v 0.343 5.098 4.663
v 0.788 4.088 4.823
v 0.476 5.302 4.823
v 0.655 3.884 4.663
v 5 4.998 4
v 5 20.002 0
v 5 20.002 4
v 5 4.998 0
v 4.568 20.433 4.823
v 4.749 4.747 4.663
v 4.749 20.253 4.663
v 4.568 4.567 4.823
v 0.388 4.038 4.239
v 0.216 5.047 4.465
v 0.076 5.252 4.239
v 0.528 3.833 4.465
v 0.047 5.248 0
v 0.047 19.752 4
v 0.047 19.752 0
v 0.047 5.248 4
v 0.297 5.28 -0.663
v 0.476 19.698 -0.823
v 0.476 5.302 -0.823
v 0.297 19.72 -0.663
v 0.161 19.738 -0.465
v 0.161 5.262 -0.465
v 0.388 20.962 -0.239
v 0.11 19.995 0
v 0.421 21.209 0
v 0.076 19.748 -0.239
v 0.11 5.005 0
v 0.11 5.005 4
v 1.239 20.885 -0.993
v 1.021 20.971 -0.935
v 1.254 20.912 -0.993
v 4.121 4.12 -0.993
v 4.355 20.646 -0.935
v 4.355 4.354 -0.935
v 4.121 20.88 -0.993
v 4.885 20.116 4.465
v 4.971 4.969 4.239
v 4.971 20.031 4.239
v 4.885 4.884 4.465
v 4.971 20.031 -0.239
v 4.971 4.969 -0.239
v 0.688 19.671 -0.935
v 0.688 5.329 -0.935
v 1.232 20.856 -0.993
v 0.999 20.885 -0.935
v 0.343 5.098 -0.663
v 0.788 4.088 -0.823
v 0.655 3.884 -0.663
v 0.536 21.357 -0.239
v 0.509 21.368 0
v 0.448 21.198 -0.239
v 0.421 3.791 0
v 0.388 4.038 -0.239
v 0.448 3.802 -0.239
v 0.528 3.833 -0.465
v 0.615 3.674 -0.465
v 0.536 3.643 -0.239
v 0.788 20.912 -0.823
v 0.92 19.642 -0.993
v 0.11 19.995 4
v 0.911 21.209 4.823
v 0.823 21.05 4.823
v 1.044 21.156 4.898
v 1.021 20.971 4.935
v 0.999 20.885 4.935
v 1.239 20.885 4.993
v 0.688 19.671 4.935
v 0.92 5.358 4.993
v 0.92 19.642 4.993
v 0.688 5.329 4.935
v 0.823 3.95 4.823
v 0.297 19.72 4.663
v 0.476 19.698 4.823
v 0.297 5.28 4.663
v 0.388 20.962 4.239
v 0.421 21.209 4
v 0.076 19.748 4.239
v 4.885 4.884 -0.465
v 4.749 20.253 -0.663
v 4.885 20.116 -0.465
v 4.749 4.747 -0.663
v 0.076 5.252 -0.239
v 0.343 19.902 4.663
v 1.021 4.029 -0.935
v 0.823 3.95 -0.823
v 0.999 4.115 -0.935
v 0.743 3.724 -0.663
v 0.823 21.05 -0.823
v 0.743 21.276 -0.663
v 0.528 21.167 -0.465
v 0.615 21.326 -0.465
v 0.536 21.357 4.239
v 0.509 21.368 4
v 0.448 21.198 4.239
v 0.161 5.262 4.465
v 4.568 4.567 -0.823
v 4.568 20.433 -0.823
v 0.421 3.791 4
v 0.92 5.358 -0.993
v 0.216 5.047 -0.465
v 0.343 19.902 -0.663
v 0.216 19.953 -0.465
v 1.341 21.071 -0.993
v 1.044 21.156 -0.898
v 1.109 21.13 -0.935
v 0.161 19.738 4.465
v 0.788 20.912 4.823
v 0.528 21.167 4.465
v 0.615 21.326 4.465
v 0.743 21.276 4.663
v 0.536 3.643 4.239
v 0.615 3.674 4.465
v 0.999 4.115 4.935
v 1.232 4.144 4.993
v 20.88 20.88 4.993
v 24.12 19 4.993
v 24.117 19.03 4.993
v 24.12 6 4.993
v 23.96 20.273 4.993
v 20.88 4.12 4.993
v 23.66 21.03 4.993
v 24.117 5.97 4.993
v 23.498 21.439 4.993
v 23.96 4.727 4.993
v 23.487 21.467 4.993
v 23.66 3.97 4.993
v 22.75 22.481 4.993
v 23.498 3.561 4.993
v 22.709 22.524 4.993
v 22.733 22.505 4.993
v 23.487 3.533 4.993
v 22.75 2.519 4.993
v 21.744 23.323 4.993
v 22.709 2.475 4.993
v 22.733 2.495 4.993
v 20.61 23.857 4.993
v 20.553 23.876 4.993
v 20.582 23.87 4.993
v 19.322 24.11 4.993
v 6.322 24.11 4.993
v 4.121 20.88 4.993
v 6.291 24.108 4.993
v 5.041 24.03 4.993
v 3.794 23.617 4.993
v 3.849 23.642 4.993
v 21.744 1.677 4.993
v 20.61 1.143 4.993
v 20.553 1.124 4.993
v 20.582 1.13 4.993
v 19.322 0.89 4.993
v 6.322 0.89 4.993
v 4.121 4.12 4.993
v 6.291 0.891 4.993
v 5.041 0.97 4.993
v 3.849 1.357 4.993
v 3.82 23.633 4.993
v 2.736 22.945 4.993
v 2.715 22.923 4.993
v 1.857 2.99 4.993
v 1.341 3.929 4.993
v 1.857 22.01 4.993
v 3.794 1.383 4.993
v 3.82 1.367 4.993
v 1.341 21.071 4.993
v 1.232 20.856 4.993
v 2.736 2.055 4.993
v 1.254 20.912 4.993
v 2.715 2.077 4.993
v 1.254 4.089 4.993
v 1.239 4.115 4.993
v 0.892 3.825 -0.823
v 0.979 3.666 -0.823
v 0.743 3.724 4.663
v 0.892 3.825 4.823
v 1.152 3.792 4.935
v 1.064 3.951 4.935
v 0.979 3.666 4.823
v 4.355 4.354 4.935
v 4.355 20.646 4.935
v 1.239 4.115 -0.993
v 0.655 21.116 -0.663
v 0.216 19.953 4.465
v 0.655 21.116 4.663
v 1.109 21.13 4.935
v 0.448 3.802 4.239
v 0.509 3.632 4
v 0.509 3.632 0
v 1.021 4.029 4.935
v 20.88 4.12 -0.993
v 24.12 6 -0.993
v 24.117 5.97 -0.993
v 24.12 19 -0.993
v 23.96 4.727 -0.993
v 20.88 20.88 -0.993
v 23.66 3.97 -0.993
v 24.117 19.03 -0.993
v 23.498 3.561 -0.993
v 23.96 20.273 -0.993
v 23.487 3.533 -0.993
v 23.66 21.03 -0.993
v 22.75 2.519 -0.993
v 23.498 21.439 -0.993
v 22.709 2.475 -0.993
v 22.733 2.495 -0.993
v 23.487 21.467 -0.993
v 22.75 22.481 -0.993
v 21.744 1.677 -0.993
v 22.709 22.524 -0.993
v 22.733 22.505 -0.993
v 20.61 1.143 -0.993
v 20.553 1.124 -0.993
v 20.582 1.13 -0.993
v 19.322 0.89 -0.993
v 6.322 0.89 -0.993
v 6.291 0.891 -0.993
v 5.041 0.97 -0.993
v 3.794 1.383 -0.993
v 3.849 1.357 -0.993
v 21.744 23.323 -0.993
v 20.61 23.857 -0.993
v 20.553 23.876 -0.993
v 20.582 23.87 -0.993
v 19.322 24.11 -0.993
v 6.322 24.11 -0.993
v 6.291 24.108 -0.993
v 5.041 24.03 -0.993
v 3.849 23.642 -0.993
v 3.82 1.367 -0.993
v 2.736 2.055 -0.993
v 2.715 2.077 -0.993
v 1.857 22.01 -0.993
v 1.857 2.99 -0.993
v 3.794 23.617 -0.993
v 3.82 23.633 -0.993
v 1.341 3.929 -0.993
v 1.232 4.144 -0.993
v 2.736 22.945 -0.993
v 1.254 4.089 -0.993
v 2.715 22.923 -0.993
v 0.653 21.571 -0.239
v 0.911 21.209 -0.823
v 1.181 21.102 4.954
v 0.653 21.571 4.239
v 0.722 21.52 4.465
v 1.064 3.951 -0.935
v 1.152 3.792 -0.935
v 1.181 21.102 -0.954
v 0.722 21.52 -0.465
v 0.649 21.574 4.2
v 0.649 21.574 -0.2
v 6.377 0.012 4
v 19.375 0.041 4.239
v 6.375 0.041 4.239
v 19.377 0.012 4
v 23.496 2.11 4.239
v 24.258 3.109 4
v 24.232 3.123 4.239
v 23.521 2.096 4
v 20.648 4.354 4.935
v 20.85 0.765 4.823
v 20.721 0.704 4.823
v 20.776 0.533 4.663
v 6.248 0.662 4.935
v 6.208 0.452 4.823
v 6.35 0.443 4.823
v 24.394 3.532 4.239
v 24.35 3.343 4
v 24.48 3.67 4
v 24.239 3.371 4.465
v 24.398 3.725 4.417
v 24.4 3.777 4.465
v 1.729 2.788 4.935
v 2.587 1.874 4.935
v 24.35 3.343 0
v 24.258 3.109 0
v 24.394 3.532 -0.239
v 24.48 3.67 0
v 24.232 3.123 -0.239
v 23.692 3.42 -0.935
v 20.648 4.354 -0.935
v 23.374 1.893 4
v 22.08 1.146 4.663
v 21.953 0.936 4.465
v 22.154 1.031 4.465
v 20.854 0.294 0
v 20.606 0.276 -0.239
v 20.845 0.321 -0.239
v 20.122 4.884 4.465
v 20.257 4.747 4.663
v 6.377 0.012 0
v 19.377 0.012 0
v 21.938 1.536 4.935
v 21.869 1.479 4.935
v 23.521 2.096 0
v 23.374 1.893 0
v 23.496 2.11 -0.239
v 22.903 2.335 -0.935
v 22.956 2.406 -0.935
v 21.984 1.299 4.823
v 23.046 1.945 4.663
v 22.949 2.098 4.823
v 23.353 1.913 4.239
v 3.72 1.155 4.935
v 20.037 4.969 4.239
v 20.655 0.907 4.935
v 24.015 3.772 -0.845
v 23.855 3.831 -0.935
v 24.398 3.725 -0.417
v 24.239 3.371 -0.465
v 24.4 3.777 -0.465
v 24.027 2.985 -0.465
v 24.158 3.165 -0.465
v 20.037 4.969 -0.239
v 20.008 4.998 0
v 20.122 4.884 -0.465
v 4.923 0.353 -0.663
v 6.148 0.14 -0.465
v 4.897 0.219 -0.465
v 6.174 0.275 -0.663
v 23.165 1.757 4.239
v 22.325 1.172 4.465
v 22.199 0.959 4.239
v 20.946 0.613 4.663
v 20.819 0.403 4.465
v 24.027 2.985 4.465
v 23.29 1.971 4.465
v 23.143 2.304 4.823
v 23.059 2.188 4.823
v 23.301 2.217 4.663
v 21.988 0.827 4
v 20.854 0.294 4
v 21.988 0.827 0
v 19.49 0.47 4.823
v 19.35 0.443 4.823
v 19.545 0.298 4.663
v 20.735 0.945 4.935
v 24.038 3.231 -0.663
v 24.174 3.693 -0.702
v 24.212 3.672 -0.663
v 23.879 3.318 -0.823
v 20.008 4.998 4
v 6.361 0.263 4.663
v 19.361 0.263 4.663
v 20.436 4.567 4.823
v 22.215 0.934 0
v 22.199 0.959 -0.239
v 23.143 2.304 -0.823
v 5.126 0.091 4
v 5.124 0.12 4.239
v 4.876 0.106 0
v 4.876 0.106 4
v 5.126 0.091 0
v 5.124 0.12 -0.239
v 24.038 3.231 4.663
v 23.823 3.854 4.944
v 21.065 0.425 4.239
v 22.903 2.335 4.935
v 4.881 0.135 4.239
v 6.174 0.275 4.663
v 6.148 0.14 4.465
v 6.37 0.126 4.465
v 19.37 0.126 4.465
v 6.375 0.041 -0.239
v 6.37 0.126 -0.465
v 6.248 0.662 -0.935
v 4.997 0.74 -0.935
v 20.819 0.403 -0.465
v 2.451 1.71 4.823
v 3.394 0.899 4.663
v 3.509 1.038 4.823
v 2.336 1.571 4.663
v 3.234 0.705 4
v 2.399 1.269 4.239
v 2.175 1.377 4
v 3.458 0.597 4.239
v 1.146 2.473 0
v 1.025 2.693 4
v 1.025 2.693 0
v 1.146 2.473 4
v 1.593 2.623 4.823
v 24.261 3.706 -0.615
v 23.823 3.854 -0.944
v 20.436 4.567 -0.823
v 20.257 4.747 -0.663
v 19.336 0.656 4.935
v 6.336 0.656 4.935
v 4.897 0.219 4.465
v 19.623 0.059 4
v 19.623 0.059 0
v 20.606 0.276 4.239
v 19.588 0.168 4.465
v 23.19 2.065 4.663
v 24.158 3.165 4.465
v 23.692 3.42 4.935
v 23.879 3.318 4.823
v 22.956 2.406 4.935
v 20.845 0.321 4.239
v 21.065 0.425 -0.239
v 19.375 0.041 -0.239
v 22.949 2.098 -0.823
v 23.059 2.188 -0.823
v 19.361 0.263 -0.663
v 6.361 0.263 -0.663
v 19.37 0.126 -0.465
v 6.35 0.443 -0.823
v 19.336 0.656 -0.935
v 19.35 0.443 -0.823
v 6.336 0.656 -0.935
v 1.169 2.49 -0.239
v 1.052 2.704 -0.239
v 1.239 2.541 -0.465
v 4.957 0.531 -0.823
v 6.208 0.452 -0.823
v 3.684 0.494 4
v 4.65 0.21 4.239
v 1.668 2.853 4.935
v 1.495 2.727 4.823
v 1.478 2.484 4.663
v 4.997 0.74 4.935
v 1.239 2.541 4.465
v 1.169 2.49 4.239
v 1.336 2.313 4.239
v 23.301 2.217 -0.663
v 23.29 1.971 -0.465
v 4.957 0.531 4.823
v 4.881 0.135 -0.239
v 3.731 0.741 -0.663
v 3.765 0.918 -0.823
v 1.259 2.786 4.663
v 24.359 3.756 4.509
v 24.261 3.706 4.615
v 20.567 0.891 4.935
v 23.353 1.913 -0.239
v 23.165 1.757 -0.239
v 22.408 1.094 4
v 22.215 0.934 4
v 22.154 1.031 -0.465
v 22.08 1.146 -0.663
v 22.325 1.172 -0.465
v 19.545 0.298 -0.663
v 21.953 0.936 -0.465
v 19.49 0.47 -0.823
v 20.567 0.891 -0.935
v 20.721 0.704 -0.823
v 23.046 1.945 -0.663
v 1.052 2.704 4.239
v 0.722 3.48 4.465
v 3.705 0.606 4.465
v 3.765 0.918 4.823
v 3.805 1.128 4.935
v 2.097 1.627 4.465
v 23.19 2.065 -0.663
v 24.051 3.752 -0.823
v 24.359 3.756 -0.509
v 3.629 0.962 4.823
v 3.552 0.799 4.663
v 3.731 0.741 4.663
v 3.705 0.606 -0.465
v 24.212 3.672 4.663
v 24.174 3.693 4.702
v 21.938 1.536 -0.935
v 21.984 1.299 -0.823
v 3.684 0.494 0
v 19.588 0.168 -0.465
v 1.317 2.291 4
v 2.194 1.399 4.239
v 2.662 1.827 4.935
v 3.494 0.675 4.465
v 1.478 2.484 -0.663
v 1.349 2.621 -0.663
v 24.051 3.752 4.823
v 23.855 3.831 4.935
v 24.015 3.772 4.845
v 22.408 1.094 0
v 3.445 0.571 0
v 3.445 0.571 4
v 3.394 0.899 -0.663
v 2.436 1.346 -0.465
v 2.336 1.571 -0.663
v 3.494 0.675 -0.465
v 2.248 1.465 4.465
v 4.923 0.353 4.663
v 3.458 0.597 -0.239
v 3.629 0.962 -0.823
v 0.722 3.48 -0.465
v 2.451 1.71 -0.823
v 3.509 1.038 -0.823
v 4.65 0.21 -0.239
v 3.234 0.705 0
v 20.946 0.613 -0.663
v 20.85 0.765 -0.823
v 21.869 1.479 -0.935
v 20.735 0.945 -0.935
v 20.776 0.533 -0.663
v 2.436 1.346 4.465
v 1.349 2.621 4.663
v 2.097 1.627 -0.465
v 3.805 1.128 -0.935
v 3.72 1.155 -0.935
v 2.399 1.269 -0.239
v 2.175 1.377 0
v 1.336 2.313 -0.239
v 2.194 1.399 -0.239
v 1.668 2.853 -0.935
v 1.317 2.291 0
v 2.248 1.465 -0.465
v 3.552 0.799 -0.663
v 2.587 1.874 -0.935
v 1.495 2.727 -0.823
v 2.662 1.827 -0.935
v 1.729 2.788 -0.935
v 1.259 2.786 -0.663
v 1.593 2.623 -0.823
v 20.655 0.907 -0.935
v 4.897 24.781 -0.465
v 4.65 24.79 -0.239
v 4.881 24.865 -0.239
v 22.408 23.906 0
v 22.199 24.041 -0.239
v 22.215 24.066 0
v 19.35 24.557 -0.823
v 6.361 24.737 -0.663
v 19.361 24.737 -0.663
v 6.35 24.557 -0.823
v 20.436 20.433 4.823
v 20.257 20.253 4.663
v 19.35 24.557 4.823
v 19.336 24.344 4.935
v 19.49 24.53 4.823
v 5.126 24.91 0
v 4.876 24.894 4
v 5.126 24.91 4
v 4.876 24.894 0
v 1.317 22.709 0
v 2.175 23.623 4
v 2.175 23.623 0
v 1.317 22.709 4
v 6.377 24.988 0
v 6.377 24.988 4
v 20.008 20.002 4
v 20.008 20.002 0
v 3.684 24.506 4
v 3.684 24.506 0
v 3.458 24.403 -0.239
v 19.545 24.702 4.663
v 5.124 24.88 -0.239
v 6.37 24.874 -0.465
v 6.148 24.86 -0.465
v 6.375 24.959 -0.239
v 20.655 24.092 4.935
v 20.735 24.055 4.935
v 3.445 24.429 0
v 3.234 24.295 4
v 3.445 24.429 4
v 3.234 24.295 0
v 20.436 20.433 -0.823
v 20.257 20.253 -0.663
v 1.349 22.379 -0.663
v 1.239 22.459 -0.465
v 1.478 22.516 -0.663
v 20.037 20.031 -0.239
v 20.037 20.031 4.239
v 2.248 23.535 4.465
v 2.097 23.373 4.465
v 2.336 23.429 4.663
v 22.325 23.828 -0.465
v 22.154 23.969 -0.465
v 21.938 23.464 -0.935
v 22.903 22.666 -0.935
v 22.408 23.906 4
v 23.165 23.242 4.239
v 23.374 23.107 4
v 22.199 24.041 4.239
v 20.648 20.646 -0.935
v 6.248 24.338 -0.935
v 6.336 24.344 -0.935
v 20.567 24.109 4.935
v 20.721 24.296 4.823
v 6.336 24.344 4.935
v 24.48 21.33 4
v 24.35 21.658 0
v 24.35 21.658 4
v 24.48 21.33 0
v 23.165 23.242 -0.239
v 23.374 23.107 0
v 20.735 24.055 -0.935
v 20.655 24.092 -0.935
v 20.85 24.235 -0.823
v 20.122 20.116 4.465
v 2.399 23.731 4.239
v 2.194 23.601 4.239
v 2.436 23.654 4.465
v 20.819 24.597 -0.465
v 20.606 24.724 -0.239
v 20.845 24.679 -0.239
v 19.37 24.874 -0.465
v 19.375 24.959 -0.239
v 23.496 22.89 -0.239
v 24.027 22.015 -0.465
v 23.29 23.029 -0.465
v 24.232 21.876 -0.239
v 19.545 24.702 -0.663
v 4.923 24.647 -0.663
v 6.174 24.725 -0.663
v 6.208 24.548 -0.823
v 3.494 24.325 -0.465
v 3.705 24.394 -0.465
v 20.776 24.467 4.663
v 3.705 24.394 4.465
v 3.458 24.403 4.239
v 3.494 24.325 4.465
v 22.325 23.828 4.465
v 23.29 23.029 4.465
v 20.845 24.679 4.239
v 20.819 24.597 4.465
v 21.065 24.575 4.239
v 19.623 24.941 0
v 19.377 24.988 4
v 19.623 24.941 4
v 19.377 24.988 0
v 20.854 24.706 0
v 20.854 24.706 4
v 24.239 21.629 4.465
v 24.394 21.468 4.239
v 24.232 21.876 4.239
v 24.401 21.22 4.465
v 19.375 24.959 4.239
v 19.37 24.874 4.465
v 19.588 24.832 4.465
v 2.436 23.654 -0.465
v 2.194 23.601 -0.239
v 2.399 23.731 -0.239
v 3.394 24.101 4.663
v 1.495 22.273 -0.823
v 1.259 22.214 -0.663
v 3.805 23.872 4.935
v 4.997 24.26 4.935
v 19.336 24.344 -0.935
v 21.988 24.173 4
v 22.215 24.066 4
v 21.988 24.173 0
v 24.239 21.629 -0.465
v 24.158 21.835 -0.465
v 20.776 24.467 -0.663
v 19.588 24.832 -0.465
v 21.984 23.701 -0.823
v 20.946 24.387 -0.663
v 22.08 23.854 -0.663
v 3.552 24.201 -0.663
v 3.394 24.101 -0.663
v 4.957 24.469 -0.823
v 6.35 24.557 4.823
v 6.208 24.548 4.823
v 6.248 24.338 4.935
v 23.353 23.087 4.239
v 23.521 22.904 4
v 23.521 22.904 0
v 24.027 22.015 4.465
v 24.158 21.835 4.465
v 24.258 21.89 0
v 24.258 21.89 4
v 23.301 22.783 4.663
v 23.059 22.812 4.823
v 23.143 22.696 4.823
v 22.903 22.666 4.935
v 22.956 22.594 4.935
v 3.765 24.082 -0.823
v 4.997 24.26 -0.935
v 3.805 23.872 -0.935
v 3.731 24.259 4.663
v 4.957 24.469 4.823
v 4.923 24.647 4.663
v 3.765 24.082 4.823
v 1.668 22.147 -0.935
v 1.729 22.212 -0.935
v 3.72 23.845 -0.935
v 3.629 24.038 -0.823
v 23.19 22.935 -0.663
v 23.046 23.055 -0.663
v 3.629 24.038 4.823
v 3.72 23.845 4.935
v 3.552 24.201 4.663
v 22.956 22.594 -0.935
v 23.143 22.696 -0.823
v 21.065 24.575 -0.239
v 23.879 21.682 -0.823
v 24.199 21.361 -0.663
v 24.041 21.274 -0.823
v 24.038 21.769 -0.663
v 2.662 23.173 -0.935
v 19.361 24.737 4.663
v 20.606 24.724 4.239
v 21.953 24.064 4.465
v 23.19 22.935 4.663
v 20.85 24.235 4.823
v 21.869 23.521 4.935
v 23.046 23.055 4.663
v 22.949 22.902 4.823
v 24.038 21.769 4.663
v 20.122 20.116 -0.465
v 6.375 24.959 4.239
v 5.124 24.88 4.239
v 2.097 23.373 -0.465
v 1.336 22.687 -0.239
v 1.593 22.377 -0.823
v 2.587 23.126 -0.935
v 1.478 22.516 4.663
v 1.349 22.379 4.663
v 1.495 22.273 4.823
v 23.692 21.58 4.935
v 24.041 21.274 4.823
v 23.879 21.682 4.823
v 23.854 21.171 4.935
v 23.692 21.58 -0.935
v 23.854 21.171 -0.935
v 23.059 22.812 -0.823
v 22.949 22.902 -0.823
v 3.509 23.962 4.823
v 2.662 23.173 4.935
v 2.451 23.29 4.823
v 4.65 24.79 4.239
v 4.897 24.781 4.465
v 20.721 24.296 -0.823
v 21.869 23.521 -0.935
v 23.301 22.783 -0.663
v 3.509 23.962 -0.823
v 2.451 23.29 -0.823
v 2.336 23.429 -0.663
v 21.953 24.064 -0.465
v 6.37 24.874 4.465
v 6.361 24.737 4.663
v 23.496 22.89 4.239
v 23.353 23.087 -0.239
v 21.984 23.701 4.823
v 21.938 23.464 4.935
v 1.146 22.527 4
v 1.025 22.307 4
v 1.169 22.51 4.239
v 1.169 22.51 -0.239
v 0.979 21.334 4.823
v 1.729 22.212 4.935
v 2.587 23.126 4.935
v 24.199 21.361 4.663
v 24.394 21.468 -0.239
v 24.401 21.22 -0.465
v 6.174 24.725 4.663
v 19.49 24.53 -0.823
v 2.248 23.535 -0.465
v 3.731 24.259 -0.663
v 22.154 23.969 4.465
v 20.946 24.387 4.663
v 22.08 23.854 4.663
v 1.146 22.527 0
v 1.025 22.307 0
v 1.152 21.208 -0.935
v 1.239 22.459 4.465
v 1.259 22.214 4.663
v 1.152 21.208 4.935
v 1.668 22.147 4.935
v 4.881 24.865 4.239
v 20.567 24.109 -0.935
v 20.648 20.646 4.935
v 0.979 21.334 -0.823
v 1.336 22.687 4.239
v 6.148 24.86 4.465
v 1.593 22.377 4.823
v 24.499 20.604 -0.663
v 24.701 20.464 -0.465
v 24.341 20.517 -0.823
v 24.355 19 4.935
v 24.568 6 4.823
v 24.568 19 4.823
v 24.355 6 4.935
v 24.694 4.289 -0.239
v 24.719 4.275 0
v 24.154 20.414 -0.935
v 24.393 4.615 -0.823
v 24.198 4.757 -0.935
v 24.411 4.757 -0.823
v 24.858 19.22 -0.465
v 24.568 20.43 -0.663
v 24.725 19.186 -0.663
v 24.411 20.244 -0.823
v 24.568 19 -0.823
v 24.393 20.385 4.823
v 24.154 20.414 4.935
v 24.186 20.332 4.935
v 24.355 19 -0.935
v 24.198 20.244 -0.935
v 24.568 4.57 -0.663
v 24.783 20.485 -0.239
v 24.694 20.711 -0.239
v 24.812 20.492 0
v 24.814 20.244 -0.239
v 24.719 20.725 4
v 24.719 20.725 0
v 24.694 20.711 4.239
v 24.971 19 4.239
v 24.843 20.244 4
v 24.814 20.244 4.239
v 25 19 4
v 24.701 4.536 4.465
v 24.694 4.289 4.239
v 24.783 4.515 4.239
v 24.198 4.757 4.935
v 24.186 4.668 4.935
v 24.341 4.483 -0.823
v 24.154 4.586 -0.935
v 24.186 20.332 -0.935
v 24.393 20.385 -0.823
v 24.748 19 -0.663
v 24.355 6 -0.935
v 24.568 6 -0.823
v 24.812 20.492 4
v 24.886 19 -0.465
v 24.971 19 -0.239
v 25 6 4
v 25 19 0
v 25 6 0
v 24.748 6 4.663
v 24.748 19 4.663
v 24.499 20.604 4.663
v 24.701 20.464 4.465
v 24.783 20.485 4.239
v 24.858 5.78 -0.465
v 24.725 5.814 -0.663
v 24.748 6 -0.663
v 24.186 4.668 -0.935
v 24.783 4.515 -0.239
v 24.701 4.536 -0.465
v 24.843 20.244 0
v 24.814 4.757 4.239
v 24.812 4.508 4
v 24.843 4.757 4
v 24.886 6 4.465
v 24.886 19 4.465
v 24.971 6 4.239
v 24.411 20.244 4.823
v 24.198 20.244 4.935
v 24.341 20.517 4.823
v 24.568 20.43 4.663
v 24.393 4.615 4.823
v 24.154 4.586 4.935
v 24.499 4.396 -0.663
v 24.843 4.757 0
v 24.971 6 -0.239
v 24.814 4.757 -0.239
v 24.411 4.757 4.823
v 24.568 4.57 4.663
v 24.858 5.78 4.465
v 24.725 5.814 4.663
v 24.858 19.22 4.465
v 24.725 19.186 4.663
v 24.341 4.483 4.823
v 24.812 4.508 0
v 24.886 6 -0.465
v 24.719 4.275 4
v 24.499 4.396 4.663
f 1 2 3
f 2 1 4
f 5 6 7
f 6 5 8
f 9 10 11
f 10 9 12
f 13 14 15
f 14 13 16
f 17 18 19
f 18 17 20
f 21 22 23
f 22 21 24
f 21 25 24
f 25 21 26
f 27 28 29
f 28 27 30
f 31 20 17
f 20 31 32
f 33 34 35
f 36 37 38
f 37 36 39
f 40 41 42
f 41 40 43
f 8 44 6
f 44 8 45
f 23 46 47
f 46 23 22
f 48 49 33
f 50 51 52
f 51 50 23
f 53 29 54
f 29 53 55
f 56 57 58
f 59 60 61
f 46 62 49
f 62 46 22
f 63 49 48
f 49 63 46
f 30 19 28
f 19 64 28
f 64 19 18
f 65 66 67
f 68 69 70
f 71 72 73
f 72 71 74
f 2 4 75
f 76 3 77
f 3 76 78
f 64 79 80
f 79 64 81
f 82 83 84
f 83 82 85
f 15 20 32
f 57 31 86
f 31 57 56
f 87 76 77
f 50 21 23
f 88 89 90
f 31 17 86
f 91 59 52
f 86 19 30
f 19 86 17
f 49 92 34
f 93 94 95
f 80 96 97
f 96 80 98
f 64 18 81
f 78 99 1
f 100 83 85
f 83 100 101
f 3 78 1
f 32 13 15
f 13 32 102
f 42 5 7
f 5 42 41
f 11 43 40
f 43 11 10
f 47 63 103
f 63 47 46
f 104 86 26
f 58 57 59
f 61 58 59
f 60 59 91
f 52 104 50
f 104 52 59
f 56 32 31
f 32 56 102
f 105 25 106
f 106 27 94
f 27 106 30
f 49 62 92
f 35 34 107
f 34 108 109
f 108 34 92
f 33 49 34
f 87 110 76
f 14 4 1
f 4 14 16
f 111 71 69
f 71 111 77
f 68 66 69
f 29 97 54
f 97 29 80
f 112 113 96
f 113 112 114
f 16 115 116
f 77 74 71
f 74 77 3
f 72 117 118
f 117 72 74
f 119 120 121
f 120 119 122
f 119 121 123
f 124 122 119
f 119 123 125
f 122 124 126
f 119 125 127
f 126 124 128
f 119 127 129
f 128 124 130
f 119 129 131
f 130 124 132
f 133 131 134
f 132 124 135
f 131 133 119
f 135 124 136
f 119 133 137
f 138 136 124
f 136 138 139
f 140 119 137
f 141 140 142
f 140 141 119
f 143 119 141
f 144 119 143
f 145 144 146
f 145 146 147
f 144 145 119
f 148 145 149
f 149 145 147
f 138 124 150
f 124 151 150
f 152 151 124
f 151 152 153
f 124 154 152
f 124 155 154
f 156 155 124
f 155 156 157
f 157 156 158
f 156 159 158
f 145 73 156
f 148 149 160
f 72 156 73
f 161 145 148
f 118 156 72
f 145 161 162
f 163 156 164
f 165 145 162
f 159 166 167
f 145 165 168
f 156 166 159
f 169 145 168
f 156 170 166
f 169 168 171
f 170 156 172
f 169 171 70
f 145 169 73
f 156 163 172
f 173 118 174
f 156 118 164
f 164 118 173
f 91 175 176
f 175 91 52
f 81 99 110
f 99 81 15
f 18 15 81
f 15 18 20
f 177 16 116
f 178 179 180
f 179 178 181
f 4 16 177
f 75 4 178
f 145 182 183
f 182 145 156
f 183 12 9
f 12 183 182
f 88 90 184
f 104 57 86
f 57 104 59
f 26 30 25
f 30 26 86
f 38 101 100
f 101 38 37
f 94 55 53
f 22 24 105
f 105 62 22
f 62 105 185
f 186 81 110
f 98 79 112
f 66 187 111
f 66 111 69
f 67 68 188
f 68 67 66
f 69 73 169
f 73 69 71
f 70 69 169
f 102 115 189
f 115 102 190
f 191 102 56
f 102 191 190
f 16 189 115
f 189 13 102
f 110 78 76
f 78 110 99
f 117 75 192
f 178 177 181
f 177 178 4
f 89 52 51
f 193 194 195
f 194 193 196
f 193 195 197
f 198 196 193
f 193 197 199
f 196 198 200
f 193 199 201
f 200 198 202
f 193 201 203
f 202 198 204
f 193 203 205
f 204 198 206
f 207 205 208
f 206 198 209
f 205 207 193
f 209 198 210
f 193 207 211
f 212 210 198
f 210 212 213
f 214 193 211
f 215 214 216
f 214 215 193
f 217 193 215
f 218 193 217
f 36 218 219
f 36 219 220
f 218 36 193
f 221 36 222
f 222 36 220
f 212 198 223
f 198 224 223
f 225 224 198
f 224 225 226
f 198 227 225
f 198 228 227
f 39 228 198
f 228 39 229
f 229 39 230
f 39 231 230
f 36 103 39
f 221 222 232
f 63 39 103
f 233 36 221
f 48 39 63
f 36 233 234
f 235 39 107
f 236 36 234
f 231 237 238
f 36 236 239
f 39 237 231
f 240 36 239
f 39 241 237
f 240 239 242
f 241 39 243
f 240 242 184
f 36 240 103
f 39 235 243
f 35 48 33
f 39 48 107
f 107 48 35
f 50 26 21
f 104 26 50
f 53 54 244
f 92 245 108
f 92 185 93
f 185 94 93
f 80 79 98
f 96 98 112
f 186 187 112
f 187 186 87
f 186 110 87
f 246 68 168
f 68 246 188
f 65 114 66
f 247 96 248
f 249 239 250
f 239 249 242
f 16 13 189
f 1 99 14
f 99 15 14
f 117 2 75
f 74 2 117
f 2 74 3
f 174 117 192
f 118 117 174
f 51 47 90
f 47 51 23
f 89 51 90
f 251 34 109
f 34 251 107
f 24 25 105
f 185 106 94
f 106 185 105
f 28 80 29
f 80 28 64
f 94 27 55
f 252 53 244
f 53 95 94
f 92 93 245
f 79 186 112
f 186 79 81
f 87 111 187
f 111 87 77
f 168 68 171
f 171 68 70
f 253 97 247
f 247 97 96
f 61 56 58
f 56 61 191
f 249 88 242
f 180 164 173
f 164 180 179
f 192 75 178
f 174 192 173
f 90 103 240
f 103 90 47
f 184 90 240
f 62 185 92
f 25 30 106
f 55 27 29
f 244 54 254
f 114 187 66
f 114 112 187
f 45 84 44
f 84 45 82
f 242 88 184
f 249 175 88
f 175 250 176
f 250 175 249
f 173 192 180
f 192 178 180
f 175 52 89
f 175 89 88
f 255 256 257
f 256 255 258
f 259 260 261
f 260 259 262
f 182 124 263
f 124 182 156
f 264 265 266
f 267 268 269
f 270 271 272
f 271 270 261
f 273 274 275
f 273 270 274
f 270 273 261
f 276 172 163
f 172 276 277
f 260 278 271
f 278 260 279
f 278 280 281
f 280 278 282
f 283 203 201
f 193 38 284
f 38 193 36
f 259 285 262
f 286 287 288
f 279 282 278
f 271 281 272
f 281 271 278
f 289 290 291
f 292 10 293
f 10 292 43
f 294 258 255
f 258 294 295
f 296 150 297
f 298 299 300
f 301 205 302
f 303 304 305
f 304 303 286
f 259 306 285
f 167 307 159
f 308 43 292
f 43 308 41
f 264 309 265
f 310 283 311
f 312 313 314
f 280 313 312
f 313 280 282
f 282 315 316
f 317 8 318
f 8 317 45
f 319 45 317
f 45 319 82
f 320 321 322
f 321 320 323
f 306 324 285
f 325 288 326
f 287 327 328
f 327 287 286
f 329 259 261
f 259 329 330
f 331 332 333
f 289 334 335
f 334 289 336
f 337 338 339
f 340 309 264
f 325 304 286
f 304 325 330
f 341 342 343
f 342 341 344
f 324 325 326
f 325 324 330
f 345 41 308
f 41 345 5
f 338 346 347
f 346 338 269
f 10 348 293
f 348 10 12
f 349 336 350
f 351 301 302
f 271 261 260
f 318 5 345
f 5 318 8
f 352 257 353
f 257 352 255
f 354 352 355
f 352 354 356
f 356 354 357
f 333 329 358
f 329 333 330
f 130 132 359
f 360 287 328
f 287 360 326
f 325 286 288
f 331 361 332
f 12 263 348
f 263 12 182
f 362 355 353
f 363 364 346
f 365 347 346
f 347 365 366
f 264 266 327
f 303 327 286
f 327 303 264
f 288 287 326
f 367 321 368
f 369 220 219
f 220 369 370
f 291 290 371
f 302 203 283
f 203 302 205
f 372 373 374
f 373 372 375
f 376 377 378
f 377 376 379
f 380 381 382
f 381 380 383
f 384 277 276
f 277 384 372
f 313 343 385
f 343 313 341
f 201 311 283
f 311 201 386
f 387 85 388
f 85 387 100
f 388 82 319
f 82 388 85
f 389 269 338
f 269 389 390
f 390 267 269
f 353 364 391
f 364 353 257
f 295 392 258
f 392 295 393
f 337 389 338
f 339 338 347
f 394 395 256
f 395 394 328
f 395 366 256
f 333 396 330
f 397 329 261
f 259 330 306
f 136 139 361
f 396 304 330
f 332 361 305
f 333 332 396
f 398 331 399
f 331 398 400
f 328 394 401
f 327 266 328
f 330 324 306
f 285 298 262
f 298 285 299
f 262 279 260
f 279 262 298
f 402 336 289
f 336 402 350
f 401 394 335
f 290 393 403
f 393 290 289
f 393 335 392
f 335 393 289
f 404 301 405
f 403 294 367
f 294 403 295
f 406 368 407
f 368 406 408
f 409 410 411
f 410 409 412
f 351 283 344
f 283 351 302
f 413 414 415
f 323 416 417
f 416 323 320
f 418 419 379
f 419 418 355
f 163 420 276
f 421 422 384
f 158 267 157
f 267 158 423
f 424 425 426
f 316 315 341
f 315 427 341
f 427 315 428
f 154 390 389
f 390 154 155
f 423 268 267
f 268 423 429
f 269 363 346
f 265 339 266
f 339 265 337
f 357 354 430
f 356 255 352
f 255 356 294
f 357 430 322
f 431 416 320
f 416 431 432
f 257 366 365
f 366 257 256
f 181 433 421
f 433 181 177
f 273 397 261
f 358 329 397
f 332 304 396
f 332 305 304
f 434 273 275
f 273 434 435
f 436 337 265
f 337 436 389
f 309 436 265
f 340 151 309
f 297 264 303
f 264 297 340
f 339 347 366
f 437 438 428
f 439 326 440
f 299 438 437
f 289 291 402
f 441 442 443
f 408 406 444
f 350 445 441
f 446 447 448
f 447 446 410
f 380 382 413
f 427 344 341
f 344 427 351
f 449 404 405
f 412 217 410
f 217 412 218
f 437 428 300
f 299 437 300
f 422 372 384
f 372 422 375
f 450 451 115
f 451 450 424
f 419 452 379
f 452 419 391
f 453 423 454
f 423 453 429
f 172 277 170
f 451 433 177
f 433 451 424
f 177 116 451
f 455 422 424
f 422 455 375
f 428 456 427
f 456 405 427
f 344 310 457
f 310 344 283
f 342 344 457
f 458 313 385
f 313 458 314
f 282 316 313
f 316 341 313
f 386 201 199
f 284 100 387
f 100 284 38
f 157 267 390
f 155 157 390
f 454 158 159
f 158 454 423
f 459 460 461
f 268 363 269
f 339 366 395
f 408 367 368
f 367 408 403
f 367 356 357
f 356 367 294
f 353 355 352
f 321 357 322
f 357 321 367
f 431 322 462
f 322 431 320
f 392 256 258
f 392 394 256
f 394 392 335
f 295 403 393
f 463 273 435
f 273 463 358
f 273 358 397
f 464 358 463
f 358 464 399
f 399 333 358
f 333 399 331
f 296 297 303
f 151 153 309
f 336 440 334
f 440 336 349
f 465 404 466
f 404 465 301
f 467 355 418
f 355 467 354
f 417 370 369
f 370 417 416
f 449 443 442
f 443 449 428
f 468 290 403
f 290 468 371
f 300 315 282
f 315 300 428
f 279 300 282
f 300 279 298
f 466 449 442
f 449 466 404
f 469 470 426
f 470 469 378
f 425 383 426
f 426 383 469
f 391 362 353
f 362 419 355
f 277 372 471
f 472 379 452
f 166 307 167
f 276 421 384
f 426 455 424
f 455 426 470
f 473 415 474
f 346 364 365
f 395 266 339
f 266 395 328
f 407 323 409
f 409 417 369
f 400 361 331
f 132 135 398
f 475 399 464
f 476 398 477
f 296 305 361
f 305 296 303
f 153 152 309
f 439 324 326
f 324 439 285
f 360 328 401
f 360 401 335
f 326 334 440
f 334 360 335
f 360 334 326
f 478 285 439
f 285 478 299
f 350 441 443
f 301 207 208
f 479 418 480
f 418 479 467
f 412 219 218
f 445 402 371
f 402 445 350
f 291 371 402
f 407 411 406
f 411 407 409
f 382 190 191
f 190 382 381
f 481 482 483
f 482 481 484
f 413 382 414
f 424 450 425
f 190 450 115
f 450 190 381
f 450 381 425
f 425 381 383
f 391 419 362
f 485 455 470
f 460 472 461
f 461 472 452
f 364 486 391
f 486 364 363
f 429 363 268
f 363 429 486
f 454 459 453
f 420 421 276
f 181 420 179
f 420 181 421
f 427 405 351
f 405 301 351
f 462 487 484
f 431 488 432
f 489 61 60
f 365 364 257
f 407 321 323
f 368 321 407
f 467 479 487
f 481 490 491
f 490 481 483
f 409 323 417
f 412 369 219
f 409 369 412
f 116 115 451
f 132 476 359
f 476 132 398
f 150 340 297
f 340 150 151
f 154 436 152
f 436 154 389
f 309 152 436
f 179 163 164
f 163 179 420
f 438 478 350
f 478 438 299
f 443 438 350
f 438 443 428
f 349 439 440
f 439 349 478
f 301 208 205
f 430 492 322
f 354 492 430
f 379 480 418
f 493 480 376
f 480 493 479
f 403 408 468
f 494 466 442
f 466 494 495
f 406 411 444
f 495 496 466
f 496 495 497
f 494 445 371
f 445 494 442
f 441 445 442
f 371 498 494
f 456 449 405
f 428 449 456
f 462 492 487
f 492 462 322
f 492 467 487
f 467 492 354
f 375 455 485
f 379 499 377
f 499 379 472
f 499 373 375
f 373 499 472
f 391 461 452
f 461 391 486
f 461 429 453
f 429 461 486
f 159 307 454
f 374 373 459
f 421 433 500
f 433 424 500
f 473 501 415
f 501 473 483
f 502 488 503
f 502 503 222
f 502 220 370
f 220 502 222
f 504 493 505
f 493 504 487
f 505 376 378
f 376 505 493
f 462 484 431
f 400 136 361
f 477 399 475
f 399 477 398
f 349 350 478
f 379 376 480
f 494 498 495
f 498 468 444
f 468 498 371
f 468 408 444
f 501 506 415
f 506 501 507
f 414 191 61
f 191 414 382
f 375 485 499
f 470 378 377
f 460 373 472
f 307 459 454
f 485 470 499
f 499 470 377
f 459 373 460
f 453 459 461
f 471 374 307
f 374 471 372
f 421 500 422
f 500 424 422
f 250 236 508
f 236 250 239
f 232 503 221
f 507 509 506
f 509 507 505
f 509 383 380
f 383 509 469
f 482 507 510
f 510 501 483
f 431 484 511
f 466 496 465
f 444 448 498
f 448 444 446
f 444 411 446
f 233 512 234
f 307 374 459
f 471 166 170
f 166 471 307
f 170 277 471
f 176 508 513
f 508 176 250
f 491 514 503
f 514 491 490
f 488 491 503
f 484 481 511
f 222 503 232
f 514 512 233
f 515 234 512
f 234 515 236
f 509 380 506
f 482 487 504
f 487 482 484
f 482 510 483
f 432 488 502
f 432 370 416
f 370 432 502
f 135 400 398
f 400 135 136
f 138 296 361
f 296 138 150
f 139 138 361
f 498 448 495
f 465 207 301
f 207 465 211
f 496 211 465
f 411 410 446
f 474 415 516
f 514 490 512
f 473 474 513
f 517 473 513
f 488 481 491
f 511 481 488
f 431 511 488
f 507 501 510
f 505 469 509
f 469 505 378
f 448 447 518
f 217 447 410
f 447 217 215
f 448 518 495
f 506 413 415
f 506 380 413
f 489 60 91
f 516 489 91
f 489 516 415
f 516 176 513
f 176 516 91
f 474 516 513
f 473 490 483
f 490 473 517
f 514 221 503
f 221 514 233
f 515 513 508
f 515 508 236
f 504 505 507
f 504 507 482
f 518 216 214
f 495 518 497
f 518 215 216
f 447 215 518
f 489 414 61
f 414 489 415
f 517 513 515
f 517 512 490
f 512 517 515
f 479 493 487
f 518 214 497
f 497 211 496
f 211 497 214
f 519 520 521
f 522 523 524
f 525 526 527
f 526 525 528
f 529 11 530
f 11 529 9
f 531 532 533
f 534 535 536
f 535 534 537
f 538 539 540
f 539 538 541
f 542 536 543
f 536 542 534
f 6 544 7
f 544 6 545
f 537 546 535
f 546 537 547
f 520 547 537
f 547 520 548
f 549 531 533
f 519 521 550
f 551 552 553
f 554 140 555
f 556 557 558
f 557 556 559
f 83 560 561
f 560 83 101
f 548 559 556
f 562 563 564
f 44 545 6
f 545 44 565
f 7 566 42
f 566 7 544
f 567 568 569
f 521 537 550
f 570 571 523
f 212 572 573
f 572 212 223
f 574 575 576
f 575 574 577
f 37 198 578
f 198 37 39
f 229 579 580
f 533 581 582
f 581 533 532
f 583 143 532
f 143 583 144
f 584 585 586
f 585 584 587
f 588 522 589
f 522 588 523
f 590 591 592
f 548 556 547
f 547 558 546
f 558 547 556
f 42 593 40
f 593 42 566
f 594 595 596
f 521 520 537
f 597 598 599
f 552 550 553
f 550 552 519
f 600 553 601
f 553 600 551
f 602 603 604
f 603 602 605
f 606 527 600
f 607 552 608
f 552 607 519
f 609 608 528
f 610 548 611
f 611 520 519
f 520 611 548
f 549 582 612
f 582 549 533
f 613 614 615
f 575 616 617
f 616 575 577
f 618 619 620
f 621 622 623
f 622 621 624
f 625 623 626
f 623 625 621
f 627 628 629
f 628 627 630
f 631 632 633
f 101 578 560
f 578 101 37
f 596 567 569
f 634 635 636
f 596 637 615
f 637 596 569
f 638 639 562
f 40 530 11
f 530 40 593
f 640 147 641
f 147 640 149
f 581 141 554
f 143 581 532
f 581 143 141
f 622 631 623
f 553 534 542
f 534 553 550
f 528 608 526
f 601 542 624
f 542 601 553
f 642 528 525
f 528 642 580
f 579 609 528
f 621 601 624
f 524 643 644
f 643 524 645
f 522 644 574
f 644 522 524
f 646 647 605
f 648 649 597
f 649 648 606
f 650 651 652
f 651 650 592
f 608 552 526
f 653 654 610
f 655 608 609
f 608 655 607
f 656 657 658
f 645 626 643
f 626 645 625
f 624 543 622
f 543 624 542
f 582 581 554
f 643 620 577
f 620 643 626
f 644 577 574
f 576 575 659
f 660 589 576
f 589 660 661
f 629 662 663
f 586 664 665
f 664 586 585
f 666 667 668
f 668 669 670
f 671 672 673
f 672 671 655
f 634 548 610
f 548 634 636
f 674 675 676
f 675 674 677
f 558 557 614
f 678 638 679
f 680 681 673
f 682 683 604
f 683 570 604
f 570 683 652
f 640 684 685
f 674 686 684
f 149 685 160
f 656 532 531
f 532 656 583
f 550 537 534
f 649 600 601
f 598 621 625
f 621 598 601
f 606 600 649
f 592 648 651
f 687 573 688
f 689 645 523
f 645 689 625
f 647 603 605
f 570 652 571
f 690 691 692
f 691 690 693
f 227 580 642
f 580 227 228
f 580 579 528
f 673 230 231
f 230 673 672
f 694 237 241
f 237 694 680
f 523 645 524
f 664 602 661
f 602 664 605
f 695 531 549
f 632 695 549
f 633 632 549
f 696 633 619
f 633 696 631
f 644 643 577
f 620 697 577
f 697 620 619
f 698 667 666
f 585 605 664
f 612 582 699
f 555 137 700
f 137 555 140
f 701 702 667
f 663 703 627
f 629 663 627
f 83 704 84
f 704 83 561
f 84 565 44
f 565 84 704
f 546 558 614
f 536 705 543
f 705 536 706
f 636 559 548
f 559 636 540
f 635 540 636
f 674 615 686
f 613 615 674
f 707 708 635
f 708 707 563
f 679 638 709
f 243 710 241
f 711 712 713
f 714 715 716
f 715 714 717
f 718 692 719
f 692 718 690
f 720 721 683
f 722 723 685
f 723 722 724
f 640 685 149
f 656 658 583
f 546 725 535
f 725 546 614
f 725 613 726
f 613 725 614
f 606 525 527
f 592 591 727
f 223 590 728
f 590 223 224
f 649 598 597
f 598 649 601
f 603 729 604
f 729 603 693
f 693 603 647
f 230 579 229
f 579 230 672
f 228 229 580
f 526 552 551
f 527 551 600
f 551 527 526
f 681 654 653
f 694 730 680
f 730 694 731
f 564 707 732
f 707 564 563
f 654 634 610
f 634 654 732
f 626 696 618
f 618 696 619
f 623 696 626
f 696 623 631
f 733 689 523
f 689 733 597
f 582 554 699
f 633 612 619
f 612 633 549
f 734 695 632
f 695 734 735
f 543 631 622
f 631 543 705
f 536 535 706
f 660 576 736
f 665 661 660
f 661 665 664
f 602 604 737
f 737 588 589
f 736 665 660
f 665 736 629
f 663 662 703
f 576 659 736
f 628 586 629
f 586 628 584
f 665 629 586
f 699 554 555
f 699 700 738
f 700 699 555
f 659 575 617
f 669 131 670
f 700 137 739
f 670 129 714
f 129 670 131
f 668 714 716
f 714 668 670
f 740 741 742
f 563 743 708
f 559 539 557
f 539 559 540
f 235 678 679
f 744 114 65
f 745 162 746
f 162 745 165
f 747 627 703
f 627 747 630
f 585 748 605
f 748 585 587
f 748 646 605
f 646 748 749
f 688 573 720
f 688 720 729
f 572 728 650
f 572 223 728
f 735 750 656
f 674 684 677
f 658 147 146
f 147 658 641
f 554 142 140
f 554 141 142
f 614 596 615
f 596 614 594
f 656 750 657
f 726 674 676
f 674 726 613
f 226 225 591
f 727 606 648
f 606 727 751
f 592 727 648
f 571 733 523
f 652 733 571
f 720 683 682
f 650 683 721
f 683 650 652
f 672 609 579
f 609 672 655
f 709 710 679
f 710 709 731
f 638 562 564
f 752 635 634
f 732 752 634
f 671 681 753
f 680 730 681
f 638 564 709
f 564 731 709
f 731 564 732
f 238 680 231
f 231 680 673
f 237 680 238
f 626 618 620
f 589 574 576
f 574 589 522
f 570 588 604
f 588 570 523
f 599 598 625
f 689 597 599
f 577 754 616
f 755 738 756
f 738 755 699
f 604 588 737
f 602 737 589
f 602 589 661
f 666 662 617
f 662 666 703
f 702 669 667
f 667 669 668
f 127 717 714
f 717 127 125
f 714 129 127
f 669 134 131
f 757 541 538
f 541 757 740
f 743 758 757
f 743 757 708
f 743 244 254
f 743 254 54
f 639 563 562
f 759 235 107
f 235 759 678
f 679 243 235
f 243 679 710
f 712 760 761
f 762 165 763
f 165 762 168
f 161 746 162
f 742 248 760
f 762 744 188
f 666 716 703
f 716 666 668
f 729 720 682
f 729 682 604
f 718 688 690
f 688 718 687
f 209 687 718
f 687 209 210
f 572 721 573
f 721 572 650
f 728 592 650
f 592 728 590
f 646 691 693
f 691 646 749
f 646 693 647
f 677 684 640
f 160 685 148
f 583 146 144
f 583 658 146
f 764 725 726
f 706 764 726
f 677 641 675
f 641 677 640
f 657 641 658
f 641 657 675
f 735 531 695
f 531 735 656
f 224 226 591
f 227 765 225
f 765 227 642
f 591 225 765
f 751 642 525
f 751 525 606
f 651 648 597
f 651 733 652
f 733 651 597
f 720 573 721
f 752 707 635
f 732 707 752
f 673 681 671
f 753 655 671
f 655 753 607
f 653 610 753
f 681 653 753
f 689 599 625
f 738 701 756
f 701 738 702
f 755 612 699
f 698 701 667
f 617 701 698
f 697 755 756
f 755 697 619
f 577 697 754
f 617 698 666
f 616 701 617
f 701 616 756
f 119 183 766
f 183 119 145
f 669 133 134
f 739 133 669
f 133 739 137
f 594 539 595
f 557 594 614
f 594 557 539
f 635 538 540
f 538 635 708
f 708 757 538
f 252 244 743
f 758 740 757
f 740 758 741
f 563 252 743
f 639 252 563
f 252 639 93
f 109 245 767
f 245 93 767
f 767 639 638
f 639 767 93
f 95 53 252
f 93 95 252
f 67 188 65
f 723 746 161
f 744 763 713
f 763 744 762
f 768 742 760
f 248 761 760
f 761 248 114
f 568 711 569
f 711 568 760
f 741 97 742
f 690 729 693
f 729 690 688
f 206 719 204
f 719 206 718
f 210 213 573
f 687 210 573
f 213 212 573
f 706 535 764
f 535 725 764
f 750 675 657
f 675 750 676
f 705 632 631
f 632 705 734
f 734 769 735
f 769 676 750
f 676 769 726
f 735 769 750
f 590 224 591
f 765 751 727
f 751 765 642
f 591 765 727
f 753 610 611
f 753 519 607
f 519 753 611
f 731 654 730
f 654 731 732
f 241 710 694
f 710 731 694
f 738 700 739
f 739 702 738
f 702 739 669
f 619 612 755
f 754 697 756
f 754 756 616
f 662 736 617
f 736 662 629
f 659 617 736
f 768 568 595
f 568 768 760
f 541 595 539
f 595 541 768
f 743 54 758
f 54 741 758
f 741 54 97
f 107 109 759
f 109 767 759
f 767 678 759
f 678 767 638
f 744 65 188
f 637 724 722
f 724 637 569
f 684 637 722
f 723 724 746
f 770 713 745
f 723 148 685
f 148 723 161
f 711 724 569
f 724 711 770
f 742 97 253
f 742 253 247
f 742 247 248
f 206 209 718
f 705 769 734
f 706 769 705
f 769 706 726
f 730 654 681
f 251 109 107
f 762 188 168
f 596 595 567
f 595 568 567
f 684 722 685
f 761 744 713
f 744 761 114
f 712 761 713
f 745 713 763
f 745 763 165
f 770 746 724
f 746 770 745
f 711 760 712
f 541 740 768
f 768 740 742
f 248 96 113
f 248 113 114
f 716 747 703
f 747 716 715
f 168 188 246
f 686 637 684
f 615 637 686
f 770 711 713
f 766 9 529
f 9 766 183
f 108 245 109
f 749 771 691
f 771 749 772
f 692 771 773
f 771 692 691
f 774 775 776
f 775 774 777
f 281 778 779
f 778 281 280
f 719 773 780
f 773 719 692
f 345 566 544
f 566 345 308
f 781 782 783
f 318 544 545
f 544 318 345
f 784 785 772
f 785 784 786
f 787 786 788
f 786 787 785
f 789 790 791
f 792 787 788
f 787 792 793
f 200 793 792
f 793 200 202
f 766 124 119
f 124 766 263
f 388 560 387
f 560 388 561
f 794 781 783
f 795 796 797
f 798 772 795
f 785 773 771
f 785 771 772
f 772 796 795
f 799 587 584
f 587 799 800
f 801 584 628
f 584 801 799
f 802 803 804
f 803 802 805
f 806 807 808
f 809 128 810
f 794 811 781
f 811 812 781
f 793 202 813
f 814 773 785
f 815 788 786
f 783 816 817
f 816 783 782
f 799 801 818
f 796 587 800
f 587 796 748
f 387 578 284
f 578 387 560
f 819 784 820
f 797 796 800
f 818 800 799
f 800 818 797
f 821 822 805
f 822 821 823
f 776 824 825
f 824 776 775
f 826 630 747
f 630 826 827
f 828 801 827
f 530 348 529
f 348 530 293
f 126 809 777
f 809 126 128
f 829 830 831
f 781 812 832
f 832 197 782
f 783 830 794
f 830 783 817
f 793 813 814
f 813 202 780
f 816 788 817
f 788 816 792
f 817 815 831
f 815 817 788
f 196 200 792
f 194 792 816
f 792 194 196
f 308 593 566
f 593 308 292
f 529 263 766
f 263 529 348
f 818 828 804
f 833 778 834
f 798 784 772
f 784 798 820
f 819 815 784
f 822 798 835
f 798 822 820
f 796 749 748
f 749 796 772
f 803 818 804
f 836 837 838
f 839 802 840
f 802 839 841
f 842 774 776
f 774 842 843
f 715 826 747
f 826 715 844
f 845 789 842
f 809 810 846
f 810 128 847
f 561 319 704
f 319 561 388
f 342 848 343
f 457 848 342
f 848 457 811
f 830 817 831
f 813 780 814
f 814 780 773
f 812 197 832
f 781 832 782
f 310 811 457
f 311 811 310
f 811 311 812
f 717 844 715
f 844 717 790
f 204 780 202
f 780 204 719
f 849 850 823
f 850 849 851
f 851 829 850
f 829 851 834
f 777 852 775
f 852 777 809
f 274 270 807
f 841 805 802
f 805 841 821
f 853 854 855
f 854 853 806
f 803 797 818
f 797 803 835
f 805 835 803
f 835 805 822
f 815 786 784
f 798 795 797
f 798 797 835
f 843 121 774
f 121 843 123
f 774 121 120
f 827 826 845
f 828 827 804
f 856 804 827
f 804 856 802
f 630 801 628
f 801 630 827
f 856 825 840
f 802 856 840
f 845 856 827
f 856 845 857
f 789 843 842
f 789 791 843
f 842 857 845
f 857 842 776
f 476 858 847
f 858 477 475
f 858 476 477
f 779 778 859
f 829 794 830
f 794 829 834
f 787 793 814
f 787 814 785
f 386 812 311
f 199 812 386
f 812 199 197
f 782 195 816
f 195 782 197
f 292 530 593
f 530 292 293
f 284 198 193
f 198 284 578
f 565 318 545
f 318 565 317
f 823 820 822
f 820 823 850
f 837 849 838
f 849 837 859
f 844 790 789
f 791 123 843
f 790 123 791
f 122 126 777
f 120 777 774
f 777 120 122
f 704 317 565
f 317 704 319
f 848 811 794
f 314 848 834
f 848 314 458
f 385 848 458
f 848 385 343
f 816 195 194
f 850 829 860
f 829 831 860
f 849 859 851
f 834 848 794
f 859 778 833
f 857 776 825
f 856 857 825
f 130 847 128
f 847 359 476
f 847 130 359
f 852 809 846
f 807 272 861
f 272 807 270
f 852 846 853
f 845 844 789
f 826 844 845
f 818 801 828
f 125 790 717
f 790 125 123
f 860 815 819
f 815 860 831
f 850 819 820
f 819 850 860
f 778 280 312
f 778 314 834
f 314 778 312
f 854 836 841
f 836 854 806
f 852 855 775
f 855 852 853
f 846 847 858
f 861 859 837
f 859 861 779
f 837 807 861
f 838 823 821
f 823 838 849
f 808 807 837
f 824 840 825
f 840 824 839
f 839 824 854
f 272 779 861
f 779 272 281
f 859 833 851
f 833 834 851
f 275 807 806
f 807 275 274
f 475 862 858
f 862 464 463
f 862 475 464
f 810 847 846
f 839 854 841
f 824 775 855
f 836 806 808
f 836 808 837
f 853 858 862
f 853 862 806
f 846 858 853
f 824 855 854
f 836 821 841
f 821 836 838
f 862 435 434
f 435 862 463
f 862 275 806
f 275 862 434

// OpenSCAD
$fn = 25;
//include<logo.scad>

outerSize = 25; // jednotková vzdálenost (vnější)
rawInnerSize = 15; // místo uvnitř
extraSpace = 0; // rezerva

height = 4; // výška
roundnessFlat = 5; // zaoblení podél x-y
roundnessZ = 1; // zaoblení nahoře a dole

innerSize = rawInnerSize + 2*roundnessZ + 2*extraSpace;
edge = (outerSize - innerSize) / 2;

module oval(size=[1, 1, 1], r = 1) {
	linear_extrude(height = size[2])
	hull() {
		translate([r, r]) circle(r);
		translate([r, size[1] - r]) circle(r);
		translate([size[0] - r, r]) circle(r);
		translate([size[0] - r, size[1] - r]) circle(r);
	}
}

module unitBase() {
	difference() {
		translate([roundnessZ, roundnessZ])
		oval([outerSize - 2*roundnessZ, outerSize - 2*roundnessZ, height], roundnessFlat);
		translate([edge, edge, -0.01]) cube([innerSize, innerSize, 1.01*height]);
	}
}

module base(numPieces) {
	if (numPieces == 1) {
		unitBase();
	}
	else {
		row1 = (numPieces - numPieces % 2) / 2;
		row2 = row1 + numPieces % 2;

		difference() {
			translate([roundnessZ, roundnessZ]) union() {
				oval([2*outerSize - 2*roundnessZ, row1*outerSize - 2*roundnessZ, height], roundnessFlat);
				oval([outerSize - 2*roundnessZ, row2*outerSize - 2*roundnessZ, height], roundnessFlat);
			}
			translate([edge, edge, -0.01]) for (i = [0:row2]) {
				translate([0, i*outerSize, 0]) cube([innerSize, innerSize, 1.01*height]);
				translate([outerSize, i*outerSize, 0]) cube([innerSize, innerSize, 1.01*height]);
			}
		}
	}
}

minkowski() {
	base(1);
	sphere(roundnessZ);
}
